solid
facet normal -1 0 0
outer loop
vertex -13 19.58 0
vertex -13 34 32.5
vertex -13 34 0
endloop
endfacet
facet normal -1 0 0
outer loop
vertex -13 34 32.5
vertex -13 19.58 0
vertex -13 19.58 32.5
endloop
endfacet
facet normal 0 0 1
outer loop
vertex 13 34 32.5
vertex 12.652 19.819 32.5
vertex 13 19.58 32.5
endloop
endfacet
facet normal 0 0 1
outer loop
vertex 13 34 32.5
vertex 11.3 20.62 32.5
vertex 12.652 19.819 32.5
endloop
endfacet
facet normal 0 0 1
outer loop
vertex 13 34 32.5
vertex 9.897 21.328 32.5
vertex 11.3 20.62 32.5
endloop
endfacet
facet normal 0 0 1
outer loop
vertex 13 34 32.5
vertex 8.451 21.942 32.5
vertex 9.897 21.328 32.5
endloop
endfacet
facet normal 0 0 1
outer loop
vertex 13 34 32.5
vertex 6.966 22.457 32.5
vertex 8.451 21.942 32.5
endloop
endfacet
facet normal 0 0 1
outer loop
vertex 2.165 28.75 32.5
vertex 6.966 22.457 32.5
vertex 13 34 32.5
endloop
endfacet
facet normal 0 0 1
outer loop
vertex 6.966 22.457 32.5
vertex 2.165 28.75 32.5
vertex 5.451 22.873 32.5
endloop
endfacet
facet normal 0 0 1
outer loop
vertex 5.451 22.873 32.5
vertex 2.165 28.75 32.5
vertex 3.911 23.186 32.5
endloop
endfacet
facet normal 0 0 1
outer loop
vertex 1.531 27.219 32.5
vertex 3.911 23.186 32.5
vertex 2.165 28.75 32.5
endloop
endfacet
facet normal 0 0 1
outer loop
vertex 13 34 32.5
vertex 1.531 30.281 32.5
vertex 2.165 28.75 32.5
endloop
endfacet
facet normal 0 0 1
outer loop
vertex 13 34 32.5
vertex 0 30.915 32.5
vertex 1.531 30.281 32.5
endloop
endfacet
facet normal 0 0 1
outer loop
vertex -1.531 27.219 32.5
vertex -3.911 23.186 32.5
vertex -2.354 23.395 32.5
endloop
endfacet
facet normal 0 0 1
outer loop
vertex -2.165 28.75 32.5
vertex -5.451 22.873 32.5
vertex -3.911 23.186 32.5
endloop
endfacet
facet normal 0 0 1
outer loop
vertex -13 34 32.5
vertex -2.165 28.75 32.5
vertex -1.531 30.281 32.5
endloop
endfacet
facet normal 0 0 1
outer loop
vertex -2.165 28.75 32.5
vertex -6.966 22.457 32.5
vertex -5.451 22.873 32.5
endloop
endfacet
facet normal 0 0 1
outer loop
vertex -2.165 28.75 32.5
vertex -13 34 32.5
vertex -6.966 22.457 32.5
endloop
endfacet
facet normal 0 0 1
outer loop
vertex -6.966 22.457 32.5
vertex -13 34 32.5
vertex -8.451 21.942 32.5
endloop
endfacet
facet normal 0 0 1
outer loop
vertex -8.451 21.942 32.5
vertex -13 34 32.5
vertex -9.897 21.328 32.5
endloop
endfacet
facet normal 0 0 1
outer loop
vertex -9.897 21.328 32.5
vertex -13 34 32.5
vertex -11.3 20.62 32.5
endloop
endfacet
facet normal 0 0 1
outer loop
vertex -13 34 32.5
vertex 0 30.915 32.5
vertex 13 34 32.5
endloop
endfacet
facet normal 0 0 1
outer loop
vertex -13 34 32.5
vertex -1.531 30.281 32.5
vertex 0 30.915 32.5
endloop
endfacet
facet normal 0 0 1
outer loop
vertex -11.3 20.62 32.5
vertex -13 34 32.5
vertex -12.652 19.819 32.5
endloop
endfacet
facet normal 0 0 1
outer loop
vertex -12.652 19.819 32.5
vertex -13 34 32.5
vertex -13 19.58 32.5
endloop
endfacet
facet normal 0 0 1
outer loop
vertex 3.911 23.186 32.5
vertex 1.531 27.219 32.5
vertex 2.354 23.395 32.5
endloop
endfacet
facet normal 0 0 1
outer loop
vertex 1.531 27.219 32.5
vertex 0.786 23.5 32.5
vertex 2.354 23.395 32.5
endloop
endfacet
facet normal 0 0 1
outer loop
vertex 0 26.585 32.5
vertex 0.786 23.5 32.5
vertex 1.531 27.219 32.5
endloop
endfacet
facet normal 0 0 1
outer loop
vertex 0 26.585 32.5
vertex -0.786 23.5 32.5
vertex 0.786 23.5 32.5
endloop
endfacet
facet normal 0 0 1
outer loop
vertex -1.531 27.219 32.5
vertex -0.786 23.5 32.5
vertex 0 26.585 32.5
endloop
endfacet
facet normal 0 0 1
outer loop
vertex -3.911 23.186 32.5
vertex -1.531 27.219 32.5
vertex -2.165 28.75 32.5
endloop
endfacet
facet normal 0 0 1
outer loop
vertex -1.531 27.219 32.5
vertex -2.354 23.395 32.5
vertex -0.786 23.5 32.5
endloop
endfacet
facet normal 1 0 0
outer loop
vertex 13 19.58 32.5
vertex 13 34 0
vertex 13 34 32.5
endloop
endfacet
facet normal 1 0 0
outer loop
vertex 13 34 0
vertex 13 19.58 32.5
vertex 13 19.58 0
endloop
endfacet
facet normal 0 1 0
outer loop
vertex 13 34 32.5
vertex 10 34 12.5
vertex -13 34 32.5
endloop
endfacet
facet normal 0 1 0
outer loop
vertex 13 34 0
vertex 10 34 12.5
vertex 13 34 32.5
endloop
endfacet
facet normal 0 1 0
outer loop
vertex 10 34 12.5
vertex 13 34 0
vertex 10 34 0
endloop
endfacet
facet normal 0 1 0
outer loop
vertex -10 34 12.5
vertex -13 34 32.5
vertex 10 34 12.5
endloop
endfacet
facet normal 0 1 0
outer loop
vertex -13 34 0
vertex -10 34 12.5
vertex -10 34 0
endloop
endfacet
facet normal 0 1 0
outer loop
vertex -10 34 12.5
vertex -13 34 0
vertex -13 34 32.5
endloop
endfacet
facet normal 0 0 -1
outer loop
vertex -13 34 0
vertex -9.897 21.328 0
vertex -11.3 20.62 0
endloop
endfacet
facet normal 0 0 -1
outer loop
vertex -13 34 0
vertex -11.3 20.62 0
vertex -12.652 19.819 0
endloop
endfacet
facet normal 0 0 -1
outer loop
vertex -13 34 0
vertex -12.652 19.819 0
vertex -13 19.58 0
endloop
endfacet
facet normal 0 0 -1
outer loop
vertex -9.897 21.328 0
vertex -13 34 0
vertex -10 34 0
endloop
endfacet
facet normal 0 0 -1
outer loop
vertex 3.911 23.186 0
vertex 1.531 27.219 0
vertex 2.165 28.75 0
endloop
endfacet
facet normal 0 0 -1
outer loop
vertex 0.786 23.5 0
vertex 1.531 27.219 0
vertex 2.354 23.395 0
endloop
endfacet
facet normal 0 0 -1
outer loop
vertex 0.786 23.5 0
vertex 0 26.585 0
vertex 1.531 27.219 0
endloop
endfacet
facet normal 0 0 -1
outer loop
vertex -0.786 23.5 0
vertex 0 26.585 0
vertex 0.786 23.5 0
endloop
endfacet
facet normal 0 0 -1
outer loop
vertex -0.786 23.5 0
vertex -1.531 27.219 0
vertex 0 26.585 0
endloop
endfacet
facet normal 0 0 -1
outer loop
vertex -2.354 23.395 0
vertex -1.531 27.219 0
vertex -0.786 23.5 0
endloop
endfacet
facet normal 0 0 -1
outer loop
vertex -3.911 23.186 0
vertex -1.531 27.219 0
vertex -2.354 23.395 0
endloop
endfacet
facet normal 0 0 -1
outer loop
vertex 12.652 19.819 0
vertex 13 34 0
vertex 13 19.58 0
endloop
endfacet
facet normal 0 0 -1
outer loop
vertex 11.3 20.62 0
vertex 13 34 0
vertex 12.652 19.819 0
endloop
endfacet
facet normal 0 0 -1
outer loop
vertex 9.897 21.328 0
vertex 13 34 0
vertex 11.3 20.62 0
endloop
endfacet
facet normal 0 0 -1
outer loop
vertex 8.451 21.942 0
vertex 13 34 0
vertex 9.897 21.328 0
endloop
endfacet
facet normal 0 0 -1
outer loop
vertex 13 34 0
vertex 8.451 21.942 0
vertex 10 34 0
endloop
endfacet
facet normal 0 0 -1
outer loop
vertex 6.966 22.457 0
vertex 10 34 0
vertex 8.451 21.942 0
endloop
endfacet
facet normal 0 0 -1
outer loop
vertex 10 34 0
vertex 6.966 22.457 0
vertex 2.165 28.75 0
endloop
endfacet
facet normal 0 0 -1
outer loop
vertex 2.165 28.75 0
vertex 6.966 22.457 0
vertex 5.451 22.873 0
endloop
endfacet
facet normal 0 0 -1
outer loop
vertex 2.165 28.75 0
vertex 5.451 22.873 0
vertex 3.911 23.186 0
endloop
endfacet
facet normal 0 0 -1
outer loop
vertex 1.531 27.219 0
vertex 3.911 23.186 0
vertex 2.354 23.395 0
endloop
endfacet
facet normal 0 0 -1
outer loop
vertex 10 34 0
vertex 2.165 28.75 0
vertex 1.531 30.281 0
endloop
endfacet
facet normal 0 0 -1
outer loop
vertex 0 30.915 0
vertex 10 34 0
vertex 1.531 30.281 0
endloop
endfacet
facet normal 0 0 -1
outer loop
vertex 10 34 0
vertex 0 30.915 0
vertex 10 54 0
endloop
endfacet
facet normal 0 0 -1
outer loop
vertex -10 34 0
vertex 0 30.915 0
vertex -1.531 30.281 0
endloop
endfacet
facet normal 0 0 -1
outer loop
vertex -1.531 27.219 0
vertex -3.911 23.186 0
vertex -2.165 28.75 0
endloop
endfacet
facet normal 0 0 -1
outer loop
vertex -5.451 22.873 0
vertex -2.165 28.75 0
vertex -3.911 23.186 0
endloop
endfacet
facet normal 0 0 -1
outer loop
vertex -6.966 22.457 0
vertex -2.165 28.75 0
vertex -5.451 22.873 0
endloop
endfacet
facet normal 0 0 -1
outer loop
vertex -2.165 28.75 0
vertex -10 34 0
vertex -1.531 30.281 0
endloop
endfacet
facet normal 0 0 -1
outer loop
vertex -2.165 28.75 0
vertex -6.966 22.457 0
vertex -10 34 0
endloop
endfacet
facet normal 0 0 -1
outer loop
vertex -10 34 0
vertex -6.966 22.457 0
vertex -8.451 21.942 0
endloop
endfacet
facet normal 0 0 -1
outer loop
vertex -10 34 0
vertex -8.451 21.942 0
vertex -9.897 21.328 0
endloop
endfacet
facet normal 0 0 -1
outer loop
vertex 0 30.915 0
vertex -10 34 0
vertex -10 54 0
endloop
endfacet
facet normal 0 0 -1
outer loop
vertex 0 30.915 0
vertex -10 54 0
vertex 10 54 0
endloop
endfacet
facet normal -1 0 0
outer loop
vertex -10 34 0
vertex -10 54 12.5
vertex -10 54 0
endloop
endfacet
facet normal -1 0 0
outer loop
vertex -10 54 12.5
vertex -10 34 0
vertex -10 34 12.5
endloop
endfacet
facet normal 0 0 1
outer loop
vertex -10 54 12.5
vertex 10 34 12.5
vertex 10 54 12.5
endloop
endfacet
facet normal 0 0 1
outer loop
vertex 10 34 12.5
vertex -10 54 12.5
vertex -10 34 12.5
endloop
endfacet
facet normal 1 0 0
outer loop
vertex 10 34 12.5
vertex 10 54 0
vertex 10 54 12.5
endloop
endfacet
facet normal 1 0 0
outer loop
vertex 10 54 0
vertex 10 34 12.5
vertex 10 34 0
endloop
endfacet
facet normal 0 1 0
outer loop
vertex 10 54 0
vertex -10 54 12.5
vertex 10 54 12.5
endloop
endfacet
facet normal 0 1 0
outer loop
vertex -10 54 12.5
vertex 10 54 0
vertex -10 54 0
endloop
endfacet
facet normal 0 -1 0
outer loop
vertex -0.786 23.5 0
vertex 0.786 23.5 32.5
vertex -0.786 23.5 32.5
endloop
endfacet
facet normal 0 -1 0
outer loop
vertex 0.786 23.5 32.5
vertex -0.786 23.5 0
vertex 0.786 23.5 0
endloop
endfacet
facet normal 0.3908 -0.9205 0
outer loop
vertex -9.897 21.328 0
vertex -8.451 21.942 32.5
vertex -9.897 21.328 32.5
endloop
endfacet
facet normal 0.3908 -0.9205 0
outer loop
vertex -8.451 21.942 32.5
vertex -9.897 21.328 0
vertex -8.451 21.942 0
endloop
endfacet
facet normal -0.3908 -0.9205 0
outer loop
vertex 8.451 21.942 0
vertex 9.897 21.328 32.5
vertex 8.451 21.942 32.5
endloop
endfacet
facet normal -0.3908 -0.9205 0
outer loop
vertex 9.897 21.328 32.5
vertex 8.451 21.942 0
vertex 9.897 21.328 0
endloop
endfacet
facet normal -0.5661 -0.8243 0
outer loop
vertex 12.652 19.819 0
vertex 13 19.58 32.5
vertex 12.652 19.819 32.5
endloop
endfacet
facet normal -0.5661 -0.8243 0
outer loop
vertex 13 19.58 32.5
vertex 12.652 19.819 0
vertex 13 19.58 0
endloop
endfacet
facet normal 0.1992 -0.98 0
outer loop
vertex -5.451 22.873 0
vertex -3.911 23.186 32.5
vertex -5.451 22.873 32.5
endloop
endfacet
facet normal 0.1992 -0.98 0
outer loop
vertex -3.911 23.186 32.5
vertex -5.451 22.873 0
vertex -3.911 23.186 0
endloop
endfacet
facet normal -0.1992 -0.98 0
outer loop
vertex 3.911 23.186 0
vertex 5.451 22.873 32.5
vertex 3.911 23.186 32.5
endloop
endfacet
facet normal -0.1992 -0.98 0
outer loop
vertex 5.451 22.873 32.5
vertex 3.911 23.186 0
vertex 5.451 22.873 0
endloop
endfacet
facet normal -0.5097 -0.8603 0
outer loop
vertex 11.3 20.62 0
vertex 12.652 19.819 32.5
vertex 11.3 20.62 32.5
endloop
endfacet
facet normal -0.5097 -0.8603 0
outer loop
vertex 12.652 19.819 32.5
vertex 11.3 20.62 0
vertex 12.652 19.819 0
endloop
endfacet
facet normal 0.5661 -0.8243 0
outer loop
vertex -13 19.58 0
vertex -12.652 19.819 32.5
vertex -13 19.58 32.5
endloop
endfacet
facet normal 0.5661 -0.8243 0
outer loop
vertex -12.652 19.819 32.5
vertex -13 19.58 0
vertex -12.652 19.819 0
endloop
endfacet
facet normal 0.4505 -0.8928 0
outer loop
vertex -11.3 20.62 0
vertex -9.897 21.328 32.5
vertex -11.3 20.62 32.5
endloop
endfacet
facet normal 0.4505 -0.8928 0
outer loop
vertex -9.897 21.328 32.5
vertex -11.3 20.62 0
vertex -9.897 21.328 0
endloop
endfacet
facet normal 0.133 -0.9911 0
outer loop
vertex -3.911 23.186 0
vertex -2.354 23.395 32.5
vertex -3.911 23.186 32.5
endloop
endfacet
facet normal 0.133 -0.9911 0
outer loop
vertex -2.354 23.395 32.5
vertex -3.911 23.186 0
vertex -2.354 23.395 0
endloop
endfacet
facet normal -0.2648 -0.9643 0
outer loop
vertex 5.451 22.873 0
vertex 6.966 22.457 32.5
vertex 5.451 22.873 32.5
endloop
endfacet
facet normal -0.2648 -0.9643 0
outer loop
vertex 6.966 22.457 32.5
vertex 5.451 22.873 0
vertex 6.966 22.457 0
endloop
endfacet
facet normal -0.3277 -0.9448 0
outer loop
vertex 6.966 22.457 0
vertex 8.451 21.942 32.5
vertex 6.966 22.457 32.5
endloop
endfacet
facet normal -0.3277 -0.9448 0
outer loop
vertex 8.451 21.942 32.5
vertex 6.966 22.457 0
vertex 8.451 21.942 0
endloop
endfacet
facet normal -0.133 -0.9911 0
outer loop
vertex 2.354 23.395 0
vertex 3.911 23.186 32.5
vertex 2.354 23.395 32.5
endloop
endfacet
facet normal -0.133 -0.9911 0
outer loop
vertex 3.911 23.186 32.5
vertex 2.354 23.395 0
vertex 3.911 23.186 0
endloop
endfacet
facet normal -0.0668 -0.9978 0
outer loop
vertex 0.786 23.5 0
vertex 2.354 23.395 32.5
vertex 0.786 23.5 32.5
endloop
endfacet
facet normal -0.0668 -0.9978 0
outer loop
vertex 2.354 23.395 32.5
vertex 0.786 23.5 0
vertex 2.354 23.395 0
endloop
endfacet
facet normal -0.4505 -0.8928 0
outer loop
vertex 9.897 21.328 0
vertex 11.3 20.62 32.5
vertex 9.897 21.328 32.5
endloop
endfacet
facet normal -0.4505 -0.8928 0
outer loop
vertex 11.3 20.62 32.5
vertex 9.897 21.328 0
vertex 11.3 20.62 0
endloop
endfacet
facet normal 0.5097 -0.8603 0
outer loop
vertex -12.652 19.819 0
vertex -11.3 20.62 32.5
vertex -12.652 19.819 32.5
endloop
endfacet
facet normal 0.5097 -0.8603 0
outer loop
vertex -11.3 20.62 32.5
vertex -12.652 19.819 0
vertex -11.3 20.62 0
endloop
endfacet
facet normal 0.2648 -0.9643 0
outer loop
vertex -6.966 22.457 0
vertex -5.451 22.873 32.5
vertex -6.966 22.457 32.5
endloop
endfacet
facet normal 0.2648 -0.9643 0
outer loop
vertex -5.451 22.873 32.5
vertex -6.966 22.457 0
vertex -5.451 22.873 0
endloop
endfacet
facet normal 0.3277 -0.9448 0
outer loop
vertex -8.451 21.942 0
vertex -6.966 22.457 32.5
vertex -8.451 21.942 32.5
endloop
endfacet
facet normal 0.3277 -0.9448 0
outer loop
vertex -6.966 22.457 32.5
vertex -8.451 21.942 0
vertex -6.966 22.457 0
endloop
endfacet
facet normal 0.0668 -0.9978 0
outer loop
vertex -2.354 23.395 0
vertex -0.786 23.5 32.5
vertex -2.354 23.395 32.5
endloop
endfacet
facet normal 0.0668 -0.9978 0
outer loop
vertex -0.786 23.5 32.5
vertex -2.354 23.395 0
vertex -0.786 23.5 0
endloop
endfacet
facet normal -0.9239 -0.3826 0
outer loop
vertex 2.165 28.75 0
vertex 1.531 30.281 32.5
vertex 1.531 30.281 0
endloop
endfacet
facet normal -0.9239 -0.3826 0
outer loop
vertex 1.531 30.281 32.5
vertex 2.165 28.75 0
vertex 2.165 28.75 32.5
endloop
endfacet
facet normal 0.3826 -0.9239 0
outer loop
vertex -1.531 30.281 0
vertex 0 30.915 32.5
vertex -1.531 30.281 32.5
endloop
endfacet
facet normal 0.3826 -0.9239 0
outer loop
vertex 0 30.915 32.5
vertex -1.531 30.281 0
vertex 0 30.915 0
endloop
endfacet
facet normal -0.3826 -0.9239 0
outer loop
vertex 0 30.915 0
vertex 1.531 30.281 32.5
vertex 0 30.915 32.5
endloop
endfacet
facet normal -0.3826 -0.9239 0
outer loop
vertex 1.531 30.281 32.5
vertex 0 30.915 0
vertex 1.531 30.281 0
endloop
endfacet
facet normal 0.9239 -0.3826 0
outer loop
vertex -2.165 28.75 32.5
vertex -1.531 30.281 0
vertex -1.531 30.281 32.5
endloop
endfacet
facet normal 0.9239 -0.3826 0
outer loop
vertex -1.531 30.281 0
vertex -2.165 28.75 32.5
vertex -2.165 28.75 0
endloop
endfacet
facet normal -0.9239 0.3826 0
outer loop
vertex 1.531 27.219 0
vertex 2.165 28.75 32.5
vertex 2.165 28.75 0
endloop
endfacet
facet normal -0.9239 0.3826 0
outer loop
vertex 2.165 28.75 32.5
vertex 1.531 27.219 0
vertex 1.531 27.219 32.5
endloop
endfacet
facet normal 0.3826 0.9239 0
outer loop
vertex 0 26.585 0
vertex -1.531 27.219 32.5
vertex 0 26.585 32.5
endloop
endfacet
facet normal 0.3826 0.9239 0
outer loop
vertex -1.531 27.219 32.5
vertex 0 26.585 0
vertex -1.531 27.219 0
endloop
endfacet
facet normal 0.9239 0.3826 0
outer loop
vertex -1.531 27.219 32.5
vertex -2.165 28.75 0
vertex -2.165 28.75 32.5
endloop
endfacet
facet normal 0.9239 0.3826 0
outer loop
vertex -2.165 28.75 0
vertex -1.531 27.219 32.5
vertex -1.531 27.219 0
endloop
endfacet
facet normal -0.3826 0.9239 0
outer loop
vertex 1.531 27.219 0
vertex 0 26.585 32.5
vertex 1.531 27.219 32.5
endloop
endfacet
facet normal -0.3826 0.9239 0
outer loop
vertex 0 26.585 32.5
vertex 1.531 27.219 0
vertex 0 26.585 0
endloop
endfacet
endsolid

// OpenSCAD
// file: ../polyhole.scad
// The Cylinder is dead! Long live the Cylinder!
// A module for a polyhole by radius, based on Nophead's work.

module polyhole(h, r, cent = false)
{
    n = max(round(4 * r), 3);
    cylinder(h = h, r = r / cos(180 / n), $fn = n, center = cent);
}
// main file
// Uses 40mm m4 to connect to the frame.

use<../polyhole.scad>

SBearingConstraint();

module SBearingConstraint()
{
    difference()
    {
        union()
        {
            translate([0, (47/2+6.5+4)/2, (20+12.5)/2])
                cube([20+3*2, 47/2+6.5+4, 20+12.5], center = true);
            translate([0, (47/2+6.5+4+20)/2, (12.5)/2])
                cube([20, 47/2+6.5+4+20, 12.5], center = true);
        }
        polyhole(20+12.5, 47/2);
        translate([0, 47/2+(6.5+4)/2, 0])
            polyhole(20+12.5, 2);
        translate([0, -47/2-6.5, (20+12.5)/2])
            cube([(47/2+6.5)*2, (47/2+6.5)*2, 20+12.5], center = true);
    }
}
